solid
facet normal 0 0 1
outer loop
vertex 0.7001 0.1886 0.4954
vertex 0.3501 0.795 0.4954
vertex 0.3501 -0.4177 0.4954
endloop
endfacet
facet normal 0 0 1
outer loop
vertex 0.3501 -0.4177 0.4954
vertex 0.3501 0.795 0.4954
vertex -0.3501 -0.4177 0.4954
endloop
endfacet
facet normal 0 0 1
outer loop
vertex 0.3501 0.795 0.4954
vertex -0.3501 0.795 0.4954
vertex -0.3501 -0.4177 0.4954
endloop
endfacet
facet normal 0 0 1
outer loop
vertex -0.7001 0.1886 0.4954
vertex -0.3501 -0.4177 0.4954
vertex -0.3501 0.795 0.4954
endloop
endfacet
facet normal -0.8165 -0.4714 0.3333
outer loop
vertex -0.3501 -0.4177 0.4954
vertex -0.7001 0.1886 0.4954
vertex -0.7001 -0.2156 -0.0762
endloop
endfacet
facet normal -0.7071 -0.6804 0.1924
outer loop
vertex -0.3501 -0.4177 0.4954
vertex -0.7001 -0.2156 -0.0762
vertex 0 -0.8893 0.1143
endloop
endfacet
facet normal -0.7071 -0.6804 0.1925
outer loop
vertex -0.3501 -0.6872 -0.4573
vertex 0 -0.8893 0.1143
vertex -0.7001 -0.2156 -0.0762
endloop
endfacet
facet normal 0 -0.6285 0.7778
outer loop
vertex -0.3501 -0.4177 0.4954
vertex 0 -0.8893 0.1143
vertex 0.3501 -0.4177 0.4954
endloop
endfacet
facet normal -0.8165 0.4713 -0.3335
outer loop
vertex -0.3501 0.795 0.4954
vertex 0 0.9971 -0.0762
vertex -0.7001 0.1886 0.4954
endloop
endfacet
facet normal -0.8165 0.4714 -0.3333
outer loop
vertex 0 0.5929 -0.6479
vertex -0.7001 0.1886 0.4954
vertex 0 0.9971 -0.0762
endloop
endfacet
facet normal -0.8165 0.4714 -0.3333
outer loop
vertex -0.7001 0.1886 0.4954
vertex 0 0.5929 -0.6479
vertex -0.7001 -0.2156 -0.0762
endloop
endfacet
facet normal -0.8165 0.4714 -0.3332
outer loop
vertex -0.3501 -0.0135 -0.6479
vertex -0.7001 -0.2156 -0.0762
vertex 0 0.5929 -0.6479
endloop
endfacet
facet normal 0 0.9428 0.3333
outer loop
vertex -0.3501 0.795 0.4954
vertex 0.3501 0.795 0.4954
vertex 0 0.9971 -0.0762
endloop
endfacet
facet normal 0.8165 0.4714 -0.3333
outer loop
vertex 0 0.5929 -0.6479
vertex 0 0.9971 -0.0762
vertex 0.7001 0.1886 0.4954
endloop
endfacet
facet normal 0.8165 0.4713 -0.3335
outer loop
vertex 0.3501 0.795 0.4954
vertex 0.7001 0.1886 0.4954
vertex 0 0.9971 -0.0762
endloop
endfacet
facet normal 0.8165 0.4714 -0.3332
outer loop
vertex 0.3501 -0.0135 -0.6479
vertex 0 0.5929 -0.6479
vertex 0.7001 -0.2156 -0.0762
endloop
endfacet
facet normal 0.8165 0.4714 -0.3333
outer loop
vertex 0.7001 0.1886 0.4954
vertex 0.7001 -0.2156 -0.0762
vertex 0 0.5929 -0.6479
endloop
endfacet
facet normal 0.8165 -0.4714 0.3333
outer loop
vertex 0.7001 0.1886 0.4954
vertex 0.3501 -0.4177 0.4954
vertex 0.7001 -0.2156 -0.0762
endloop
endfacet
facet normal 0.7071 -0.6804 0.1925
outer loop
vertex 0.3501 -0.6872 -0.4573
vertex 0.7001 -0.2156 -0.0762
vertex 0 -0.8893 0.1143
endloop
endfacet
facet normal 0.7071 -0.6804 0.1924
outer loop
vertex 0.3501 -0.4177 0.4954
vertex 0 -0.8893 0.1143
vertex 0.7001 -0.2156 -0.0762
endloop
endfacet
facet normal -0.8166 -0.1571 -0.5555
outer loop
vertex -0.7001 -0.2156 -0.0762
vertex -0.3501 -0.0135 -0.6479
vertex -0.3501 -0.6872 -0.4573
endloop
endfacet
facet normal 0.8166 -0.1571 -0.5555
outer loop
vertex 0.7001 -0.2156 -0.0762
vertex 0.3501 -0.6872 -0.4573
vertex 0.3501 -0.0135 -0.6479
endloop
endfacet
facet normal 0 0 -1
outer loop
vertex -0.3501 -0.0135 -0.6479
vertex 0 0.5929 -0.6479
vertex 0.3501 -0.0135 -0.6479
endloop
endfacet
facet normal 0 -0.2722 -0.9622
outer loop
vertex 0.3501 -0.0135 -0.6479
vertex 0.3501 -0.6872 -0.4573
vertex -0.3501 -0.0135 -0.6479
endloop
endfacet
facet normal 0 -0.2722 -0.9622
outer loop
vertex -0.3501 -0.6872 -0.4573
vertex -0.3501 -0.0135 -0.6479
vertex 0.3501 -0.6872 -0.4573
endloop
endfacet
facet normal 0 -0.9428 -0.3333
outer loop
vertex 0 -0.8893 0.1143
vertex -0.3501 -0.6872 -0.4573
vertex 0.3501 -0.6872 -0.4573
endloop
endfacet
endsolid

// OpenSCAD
polyhedron( points = [[-0.350070020993249, -0.417700243210174, 0.495440357100906], [-0.700140042027028, 0.18863881951086, 0.495440357100906], [-0.350070020938804, 0.794977882074728, 0.495440357100906], [0.350070021092455, 0.794977882011855, 0.495440357100906], [0.70014004207179, 0.188638819385125, 0.495440357100906], [0.350070021038012, -0.417700243210174, 0.495440357100906], [-0.700140041972583, -0.215587222264743, -0.0762215933980912], [1.13123011481315e-10, 0.997090902852509, -0.0762215933980912], [0.700140041908461, -0.215587222264744, -0.0762215933980898], [-0.350070021047688, -0.0134742013297925, -0.647883543867444], [1.04049220037941e-10, 0.592864861134534, -0.647883543867451], [0.350070020874682, -0.0134742013297918, -0.647883543867451], [-5.02112586642827e-11, -0.889297291732666, 0.114332390018946], [-0.350070020961809, -0.687184270819355, -0.457329560389203], [0.350070020788801, -0.687184270808169, -0.457329560438563]], faces = [[0, 5, 4, 3, 2, 1], [0, 1, 6], [0, 6, 13, 12], [0, 12, 5], [1, 2, 7, 10, 9, 6], [2, 3, 7], [3, 4, 8, 11, 10, 7], [4, 5, 8], [5, 12, 14, 8], [6, 9, 13], [8, 14, 11], [9, 10, 11], [9, 11, 14, 13], [12, 13, 14]]);
